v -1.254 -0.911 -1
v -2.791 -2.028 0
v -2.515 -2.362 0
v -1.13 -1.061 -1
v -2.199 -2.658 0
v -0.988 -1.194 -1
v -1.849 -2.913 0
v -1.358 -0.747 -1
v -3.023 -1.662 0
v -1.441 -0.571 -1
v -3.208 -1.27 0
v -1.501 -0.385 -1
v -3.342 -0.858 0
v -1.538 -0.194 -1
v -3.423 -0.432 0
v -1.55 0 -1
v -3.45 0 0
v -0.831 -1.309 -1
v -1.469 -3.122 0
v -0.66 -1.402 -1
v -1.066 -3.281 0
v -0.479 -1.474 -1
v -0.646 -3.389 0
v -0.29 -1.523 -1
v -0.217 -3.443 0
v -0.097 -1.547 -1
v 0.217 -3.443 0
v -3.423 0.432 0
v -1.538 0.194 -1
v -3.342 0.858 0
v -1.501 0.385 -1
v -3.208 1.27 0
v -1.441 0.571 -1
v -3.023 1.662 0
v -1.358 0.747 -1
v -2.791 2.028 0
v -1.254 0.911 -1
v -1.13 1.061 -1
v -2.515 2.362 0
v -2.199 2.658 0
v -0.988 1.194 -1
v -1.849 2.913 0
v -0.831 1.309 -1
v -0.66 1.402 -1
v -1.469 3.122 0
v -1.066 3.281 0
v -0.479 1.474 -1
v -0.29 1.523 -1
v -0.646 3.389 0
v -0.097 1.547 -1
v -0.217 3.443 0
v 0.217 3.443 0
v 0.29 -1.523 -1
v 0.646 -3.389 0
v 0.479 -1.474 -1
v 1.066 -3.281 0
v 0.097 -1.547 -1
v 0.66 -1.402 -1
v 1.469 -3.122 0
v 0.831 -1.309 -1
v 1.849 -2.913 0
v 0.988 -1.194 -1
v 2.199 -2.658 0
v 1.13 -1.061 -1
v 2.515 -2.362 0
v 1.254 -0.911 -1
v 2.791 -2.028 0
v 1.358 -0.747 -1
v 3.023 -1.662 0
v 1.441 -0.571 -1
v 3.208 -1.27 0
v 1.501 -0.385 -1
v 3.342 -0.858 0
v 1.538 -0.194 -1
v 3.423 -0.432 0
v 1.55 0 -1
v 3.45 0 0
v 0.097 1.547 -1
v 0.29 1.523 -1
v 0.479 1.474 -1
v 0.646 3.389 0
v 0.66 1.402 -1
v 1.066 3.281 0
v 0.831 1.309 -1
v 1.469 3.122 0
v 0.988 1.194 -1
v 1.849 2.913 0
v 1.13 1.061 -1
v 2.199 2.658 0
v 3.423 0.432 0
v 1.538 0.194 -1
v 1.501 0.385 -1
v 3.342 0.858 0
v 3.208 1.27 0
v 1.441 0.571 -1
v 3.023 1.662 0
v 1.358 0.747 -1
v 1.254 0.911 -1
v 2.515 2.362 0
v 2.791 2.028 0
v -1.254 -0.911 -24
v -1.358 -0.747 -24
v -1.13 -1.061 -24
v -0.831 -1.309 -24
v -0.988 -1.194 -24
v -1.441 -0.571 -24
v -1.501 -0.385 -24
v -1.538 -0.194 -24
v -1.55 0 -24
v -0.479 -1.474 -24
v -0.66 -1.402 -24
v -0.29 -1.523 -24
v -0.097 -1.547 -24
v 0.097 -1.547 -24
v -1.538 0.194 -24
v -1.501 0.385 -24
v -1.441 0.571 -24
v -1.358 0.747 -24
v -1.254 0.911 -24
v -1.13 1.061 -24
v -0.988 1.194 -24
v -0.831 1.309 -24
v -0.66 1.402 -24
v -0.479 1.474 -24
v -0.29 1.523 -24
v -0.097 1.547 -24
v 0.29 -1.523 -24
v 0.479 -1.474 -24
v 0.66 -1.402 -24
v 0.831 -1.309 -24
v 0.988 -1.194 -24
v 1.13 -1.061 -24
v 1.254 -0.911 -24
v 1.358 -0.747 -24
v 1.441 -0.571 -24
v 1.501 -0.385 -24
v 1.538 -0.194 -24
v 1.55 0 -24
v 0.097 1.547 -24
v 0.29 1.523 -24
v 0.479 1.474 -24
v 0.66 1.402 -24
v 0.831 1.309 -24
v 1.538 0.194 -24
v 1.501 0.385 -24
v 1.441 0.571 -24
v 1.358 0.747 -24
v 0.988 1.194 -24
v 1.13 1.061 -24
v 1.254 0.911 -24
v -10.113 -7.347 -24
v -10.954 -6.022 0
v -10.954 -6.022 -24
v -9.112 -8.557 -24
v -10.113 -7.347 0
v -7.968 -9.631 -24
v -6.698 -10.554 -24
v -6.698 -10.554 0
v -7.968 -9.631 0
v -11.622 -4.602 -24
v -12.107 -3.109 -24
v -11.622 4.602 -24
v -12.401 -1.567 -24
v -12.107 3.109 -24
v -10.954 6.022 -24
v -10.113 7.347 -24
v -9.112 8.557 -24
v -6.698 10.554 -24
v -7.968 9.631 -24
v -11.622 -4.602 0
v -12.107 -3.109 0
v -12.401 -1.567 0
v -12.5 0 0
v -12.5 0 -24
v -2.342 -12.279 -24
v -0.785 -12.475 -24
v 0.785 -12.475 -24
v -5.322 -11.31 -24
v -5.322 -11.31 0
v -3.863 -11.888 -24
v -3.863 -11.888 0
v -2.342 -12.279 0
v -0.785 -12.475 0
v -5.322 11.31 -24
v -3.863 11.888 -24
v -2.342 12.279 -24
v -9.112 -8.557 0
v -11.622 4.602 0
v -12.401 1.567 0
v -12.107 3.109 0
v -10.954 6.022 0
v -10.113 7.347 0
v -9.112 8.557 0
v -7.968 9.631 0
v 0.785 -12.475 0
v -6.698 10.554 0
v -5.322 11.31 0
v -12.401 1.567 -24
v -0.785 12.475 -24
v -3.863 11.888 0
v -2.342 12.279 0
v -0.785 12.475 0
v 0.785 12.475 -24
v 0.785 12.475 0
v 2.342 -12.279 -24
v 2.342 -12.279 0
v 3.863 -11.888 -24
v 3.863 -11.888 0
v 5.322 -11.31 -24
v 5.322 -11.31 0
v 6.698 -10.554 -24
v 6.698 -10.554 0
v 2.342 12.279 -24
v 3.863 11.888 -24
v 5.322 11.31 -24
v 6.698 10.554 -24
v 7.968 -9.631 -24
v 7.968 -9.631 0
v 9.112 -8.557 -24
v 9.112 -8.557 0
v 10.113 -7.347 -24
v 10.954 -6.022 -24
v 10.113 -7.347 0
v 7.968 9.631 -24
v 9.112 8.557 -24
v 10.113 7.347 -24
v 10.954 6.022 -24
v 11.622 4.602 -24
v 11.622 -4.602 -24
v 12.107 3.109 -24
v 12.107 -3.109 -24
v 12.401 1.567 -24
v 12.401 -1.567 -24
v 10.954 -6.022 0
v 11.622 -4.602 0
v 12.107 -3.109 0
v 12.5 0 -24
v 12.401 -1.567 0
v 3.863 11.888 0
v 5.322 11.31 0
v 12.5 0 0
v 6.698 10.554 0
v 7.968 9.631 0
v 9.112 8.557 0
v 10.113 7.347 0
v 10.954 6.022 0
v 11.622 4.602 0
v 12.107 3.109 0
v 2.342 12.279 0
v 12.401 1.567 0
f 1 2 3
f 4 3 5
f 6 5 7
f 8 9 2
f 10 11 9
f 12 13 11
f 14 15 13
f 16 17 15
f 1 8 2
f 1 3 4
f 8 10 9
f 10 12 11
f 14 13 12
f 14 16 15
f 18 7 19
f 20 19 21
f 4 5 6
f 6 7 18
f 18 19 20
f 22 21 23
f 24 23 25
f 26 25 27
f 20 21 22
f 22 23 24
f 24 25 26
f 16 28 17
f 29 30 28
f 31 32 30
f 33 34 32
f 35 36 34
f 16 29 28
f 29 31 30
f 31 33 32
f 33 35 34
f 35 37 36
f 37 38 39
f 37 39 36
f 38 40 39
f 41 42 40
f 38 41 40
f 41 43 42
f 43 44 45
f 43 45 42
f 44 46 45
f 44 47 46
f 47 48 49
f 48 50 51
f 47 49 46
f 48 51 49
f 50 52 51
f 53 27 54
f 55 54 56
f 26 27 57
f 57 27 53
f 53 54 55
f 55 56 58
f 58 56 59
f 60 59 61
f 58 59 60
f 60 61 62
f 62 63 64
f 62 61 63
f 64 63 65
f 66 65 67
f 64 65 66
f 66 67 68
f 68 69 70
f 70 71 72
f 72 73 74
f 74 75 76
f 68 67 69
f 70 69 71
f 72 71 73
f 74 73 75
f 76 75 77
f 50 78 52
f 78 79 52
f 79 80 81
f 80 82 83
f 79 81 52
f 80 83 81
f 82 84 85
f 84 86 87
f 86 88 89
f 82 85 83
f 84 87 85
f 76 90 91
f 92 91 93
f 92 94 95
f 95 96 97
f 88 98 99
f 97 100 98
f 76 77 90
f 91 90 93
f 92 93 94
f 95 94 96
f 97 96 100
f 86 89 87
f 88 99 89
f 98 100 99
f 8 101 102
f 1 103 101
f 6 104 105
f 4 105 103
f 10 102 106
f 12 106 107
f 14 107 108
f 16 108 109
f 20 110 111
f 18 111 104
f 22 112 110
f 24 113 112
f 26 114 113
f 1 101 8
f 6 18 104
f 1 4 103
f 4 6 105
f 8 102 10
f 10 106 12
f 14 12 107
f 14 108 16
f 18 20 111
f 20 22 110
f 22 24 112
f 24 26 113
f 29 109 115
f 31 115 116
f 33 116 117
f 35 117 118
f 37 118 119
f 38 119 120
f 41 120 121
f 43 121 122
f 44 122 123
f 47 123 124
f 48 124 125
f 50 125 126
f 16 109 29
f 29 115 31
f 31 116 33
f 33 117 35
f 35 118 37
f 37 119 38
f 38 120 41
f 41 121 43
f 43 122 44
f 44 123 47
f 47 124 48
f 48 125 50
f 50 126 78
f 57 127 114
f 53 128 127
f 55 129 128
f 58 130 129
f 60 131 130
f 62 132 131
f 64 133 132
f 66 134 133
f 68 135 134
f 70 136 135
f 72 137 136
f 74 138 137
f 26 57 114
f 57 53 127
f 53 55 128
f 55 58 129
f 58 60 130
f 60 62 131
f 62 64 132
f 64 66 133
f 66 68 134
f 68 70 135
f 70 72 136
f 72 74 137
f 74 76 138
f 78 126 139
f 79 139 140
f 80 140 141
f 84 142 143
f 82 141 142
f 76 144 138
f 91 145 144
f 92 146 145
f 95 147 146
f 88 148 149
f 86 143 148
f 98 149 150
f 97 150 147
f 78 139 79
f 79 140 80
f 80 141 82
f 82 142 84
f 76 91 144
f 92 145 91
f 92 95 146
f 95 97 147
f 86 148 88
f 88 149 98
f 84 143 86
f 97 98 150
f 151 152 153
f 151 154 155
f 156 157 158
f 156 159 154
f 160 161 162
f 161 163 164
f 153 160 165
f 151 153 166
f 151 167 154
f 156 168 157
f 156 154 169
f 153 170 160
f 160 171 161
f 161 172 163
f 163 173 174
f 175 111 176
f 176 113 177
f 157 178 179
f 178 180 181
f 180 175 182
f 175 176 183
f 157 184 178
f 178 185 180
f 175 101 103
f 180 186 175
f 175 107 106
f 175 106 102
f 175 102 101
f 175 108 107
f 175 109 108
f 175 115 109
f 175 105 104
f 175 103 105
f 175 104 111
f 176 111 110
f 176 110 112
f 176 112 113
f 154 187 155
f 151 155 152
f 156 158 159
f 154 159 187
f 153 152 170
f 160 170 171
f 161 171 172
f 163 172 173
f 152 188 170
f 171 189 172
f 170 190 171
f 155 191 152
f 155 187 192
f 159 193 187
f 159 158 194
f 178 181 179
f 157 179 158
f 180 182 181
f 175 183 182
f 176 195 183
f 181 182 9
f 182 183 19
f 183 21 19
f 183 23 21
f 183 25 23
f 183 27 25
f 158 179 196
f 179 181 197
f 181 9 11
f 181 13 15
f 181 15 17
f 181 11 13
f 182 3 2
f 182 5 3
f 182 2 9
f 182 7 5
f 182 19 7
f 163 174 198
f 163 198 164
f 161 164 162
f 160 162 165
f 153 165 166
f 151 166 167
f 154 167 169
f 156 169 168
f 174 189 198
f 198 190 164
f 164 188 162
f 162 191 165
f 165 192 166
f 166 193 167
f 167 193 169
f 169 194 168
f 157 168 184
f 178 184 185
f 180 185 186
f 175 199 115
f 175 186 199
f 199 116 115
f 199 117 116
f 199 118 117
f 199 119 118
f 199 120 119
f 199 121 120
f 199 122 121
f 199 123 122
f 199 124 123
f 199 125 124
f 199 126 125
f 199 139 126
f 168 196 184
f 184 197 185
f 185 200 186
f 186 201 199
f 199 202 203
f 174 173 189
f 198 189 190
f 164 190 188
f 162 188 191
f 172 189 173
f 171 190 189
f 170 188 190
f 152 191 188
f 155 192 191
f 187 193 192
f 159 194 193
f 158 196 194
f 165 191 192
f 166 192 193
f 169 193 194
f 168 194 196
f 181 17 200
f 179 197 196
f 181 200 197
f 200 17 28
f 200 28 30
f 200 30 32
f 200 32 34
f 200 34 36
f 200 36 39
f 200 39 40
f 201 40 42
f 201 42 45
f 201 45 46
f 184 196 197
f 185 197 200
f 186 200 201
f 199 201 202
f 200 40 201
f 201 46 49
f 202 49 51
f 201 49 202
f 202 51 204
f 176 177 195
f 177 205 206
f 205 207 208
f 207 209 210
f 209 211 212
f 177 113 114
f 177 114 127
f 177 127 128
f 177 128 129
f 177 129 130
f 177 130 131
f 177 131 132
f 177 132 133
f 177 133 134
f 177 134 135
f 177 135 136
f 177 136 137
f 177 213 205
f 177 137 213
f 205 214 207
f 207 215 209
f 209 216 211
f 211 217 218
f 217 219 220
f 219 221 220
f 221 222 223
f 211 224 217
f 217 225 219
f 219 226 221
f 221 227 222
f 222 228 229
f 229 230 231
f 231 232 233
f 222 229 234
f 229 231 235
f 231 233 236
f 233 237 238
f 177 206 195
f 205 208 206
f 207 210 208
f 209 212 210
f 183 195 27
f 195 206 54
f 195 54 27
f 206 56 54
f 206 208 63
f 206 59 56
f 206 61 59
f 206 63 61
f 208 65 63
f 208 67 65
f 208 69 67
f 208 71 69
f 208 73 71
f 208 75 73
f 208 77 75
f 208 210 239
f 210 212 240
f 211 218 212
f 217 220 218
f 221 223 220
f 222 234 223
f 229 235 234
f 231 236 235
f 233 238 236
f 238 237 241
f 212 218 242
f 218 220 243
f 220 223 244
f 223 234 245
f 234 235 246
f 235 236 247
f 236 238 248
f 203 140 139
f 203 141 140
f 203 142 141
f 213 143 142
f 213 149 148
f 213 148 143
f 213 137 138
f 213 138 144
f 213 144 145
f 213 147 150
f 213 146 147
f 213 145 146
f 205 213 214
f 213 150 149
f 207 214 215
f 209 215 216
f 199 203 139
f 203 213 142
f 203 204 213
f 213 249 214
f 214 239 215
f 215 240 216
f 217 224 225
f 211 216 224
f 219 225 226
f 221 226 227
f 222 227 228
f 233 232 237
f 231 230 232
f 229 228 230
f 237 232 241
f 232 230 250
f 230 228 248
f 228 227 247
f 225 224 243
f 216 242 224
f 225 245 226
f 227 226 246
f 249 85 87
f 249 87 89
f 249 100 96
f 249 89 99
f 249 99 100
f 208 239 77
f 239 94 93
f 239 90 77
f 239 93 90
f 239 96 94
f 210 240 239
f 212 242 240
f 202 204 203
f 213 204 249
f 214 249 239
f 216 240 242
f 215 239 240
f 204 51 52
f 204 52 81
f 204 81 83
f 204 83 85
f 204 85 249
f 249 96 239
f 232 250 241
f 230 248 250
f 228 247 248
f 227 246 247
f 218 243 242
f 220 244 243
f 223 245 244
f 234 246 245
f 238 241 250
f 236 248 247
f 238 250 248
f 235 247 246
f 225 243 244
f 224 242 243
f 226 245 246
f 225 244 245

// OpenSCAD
$fn = 50;


difference() {
	union() {
		translate(v = [0, 0, -24.0000000000]) {
			cylinder(h = 24, r = 12.5000000000);
		}
	}
	union() {
		translate(v = [0, 0, 0]) {
			rotate(a = [0, 0, 0]) {
				difference() {
					union() {
						translate(v = [0, 0, -27.0000000000]) {
							cylinder(h = 27, r = 1.2500000000);
						}
						translate(v = [0, 0, -1.0000000000]) {
							cylinder(h = 1.0000000000, r1 = 1.5500000000, r2 = 3.4500000000);
						}
						translate(v = [0, 0, -27.0000000000]) {
							cylinder(h = 27, r = 1.5500000000);
						}
						translate(v = [0, 0, -27.0000000000]) {
							cylinder(h = 27, r = 1.2500000000);
						}
					}
					union();
				}
			}
		}
	}
}
